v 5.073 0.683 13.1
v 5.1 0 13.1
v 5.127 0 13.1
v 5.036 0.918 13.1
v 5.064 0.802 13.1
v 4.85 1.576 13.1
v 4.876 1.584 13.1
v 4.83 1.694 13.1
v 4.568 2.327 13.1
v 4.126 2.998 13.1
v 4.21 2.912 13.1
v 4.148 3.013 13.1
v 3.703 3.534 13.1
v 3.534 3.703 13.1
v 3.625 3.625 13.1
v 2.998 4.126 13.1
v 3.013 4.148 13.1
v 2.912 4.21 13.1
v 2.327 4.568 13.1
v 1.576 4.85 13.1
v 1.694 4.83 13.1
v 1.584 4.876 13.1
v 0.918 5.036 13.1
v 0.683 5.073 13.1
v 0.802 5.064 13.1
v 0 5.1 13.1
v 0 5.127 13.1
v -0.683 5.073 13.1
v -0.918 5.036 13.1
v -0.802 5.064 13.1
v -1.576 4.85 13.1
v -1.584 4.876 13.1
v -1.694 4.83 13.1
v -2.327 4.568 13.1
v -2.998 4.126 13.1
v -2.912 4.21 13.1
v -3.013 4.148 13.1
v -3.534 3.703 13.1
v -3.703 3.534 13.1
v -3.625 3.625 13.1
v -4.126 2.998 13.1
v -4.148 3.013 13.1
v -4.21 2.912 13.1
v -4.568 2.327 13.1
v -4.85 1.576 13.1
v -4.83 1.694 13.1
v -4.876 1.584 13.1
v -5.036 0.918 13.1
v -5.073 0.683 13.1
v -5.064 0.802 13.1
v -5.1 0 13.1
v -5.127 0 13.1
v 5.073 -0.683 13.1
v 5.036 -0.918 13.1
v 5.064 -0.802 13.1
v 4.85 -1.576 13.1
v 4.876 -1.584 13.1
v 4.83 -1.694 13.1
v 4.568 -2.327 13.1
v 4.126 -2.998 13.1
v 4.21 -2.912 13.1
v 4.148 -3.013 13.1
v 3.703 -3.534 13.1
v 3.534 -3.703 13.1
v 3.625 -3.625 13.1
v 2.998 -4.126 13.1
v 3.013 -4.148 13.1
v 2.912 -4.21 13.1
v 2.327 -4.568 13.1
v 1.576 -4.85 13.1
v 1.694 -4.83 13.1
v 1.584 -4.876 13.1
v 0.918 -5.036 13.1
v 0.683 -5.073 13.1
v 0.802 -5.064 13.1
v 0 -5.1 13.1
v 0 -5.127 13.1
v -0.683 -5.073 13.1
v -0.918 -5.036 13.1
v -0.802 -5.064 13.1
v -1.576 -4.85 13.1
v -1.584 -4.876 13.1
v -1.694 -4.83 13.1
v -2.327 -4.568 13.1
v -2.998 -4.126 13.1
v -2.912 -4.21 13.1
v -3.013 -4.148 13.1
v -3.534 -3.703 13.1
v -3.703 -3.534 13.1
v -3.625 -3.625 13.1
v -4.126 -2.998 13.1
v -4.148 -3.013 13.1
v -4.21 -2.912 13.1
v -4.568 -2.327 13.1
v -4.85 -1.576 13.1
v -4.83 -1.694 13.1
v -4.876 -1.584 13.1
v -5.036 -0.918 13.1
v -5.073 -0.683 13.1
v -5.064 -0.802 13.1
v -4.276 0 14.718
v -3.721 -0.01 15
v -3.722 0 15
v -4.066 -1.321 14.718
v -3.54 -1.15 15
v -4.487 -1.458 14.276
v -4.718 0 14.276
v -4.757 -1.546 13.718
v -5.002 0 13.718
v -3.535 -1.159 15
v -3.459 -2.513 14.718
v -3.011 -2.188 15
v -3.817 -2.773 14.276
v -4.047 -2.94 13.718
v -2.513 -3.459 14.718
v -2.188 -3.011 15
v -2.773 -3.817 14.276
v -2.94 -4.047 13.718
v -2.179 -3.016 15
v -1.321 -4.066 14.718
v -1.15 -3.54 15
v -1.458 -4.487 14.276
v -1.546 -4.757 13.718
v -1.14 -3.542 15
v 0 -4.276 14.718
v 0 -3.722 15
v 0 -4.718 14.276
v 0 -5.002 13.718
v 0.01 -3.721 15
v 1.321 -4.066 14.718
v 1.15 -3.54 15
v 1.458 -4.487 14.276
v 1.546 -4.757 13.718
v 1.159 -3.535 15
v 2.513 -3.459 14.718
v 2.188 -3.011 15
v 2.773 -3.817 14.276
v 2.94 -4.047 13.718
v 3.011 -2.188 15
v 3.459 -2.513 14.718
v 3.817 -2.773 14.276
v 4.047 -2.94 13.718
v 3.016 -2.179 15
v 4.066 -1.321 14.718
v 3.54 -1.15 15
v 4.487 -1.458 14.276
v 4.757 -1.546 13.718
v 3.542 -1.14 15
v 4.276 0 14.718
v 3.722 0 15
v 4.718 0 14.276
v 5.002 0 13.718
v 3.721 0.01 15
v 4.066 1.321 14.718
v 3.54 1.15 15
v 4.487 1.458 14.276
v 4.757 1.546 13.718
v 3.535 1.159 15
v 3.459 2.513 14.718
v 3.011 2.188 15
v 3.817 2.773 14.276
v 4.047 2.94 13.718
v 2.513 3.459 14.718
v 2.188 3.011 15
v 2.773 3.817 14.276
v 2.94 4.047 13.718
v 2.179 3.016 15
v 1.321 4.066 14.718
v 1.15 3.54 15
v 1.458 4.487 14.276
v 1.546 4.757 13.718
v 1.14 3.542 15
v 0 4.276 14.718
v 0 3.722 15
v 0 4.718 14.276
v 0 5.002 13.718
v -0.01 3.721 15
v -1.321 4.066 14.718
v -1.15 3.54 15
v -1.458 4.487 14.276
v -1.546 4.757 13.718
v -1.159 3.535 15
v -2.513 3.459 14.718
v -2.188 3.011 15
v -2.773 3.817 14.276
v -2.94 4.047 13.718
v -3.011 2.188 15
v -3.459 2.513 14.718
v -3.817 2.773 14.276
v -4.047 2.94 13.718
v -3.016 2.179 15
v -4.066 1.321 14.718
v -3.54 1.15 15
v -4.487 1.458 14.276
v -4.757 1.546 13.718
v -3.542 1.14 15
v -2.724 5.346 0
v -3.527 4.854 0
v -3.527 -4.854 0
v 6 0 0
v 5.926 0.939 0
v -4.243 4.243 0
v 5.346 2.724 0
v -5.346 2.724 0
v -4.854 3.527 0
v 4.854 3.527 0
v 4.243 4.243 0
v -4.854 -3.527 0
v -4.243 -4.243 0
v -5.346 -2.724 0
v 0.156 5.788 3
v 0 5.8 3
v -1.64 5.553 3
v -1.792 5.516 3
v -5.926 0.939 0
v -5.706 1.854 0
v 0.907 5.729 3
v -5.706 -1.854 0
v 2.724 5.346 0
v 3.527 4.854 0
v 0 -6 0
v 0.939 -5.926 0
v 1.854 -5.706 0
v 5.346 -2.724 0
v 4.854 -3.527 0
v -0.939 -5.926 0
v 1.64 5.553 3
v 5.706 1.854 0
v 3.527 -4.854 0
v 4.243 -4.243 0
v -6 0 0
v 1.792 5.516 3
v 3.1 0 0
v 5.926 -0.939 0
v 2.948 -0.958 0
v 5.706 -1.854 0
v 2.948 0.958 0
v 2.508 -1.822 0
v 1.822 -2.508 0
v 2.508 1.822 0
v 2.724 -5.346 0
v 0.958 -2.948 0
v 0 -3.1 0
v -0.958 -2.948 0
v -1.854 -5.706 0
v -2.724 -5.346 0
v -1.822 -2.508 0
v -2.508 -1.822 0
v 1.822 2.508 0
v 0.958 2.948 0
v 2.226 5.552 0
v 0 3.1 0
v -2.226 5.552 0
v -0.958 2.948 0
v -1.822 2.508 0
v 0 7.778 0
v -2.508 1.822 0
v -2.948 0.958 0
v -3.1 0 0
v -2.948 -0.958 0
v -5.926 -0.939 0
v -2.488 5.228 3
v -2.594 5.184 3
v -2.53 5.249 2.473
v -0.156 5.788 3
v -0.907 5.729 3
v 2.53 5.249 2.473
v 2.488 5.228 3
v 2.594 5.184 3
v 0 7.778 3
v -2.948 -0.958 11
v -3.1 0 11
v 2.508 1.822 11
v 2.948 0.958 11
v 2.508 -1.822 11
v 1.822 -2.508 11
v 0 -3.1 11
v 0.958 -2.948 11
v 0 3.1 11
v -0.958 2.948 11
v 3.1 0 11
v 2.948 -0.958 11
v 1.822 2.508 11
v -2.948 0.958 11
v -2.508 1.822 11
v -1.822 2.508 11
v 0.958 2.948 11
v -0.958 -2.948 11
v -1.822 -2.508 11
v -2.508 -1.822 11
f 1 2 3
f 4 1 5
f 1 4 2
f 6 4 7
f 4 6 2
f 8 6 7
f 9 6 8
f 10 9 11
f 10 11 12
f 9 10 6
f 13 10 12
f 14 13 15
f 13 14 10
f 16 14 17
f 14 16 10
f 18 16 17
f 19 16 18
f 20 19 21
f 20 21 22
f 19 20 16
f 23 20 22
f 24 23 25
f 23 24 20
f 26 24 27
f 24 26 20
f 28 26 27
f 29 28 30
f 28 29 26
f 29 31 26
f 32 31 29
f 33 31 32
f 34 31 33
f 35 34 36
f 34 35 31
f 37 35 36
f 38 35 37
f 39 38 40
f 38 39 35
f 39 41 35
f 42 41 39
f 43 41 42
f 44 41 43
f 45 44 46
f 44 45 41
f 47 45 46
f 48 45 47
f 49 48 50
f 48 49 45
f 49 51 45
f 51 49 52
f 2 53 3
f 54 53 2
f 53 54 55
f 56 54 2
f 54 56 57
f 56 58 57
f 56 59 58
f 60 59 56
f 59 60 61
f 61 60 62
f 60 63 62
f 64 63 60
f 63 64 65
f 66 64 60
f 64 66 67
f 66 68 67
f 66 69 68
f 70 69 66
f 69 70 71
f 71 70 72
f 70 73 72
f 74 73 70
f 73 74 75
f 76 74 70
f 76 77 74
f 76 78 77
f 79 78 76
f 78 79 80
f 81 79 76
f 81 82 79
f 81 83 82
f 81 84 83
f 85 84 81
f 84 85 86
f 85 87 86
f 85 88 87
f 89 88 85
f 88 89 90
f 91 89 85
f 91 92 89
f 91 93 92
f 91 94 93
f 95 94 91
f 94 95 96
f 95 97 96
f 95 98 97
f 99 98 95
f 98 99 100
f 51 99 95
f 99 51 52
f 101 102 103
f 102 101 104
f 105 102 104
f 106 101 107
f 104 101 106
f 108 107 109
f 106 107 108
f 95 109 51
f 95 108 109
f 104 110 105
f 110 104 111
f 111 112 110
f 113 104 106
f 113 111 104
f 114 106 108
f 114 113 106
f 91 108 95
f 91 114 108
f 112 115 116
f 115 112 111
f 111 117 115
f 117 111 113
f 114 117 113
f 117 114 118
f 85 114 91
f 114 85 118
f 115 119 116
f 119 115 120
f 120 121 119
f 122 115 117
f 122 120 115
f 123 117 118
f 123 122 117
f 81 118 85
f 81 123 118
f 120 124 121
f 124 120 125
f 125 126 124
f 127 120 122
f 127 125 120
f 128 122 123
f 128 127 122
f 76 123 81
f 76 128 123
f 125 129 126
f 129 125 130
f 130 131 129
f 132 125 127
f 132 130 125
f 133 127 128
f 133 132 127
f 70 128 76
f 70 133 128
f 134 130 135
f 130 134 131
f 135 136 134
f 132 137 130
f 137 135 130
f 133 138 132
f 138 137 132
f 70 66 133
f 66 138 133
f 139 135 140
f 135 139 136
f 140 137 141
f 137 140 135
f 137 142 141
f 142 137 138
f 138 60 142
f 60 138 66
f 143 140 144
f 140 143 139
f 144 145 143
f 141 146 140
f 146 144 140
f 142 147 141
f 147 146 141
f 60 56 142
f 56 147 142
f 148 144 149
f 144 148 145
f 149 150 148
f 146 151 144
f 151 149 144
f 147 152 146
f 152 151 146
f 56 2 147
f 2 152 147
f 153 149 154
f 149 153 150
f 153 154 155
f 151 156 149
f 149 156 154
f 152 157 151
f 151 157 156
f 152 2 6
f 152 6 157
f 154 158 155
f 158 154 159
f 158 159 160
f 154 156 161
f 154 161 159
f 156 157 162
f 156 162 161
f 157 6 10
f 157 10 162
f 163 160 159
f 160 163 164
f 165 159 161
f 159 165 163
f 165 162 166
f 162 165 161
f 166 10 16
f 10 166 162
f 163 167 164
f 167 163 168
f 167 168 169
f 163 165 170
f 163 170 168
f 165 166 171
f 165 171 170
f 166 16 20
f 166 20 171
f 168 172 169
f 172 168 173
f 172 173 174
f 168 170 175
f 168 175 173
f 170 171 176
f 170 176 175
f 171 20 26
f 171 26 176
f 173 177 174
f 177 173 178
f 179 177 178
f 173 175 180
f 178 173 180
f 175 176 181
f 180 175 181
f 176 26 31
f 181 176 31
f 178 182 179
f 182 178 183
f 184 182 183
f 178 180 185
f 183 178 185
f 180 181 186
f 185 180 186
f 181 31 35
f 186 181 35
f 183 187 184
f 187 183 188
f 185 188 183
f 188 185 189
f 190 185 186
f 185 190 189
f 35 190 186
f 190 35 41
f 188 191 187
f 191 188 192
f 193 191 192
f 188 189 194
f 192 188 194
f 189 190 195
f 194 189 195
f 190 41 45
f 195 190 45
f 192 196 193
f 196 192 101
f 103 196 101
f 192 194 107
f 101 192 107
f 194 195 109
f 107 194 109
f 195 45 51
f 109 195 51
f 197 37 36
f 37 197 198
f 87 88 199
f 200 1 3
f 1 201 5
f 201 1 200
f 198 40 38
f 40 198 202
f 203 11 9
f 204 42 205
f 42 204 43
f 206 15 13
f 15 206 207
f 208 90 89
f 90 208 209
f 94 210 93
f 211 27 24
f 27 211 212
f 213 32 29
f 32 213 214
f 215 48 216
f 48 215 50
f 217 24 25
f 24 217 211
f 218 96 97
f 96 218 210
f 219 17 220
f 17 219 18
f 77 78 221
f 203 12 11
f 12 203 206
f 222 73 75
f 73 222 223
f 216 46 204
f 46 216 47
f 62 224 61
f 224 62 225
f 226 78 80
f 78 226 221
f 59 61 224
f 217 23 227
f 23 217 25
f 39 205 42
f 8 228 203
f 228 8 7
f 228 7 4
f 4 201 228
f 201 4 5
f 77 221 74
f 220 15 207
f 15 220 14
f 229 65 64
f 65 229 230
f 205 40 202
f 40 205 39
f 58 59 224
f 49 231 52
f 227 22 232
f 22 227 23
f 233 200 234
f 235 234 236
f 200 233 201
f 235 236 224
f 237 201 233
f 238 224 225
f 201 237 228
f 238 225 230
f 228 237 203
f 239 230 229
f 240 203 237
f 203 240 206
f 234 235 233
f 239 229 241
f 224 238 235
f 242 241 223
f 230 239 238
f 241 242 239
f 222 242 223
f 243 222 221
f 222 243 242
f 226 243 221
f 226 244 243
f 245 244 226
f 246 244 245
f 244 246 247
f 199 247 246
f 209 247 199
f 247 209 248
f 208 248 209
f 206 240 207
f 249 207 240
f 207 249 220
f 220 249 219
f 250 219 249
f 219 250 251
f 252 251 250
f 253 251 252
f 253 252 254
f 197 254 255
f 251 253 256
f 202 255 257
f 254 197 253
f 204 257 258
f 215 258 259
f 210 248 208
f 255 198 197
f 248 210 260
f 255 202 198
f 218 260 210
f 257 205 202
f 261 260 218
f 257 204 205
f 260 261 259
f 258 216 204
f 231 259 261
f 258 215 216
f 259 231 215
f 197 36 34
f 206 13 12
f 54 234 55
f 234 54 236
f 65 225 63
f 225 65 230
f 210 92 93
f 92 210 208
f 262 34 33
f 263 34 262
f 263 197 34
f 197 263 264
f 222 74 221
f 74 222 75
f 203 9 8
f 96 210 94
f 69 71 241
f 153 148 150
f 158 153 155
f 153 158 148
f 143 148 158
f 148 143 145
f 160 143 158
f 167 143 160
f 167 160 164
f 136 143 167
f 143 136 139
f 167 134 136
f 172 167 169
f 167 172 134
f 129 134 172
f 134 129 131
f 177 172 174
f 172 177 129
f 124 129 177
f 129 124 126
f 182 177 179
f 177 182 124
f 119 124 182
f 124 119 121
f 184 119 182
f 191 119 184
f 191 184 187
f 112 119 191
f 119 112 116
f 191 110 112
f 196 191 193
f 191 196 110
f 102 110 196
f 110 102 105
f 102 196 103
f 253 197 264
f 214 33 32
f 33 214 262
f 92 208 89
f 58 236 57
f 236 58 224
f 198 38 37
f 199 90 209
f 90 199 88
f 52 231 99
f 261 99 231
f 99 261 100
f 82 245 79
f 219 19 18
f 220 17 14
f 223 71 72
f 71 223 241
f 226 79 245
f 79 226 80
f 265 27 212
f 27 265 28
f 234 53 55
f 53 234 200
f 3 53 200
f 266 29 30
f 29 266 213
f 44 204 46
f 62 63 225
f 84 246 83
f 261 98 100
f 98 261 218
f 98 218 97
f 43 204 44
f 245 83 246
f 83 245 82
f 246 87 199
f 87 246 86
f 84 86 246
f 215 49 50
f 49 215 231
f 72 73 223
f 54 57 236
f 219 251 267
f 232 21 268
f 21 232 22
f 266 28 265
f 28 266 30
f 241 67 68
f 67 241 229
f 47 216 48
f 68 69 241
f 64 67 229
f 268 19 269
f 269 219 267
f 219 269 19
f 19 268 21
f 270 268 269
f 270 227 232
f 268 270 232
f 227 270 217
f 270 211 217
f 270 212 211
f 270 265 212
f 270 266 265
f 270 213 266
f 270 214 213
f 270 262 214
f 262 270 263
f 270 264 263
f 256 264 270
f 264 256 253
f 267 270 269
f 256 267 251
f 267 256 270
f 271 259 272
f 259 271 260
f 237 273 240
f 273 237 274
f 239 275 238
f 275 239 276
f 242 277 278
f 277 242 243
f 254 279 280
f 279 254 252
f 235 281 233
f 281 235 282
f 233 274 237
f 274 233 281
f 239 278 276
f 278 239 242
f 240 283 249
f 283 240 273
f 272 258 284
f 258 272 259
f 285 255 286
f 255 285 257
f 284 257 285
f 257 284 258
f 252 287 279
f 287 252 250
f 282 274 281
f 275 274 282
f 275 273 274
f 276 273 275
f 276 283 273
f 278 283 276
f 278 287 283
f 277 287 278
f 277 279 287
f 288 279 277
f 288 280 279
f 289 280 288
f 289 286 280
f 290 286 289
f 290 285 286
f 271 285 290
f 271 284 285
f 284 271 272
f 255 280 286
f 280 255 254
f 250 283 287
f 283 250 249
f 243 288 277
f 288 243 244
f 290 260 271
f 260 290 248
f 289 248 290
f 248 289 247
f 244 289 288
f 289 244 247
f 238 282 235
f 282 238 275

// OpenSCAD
/*

Parametric Potentiometer Knob Generator
version 1.1
2012 Steve Cooley
http://sc-fa.com
http://beatseqr.com
http://hapticsynapses.com

parametric potentiometer knob generator by steve cooley is licensed under a Creative Commons Attribution-NonCommercial-ShareAlike 3.0 Unported License. Based on a work at sc-fa.com. Permissions beyond the scope of this license may be available at http://sc-fa.com/blog/contact.

view terms of the license here:
http://creativecommons.org/licenses/by-nc-sa/3.0/


version history
---------------
1.1 2012-04-12 fixed the arrow indicator code to be more robust and easier to adjust parameters for.
1.0 2012-03-?? initial release.


*/


//
//
// Physical attributes, basic
//
//

knob_radius_top = 5;
knob_radius_bottom = 6;
knob_height = 15;
knob_smoothness = 40;

shaft_radius = 3.1;
shaft_height = 12;
shaft_smoothness = 20;

shaft_is_flatted = false;
flat_size_adjustment = -0.0;
// you won't need to mess with this. less than 5 makes it disappear. you can, however,
// set the adjustment to be a negative decimal if you need a flat but not as big as the default.
// go positive if you need a bigger flat
flat_size = 5 + flat_size_adjustment;

// some potentiometers need to have their knobs affixed with a set screw.
set_screw = false;
set_screw_radius = 1.5;
set_screw_depth = 9;
set_screw_height = 4;
quality_of_set_screw = 20;

//
//
// Decorations
//
//

//
// top edge smoothing
// thanks to http://www.iheartrobotics.com/ for the articles!
//

smoothing = true;
smoothing_radius = 2;				// tweak on this one, how much smoothing to apply
smooth = 20;						// tweak on this one, Number of facets of rounding cylinder

ct = -0.1; 							// circle translate? not sure.
circle_radius = knob_radius_top;  	// just match the top edge radius
circle_height = 1; 					// actually.. I don't know what this does.
pad = 0.2;							// Padding to maintain manifold


//
// directional indicators
//

// this is a corner edge of a cube sticking out of the cylinder at the bottom
// you can use it instead of the arrow shaped cutout in the top if you like. Or both.

pointy_external_indicator = true;
pointy_external_indicator_height = 3;
pointy_external_indicator_pokey_outey_ness = 0.7; //
pokey_outey_value = pointy_external_indicator_pokey_outey_ness - 1 - pad;
pokey_outey = [pokey_outey_value, pokey_outey_value,0];

// there's an arrow shaped hole you can have. There aren't a lot of controls for this.
// please feel free to improve on this script here.

arrow_indicator = false;
arrow_indicator_scale = 0.4;
arrow_indicator_translate = [0,1,16];
arrow_scale_head = 2;
arrow_scale_shaft = 1.5;

//
// indentations
//

// for spherical indentations, set the quantity, quality, size, and adjust the placement
indentations_sphere = false;
sphere_number_of_indentations = 12;
sphere_quality_of_indentations = 4;
size_of_sphere_indentations = 4;
// the first number in this set moves the spheres in or out. smaller is closer to the middle
// the second number in this set moves the spheres left or right
// the third number in this set moves the speheres up or down
translation_of_sphere_indentations = [10,0,15];
// in case you are using an odd number of indentations, you way want to adjust the starting angle
// so that they align to the front or set screw locations.
sphere_starting_rotation = 90;

// for cylinder indentations, set quantity, quality, radius, height, and placement
indentations_cylinder = false;
cylinder_number_of_indentations = 10;
cylinder_quality_of_indentations = 50;
radius_of_cylinder_indentations_top = 3;
radius_of_cylinder_indentations_bottom = 5;
height_of_cylinder_indentations = 12;
translation_of_cylinder_indentations = [0,8,-8];
cylinder_starting_rotation = -33.3;

// these are some setup variables... you probably won't need to mess with them.
negative_knob_radius = knob_radius_bottom*-1;


// this is the main module. It calls the submodules.
make_the_knob();

module make_the_knob()
{
	difference()
		{
		difference()
			{

			difference()
				{
				difference()
					{

					union()
						{

						difference()
							{
							// main cylinder
							cylinder(r1=knob_radius_bottom,r2=knob_radius_top,h=knob_height, $fn=knob_smoothness);

							smoothing();

							}

						external_direction_indicator();
						}

					shaft_hole();
					}

				set_screw_hole();
				}

			arrow_indicator();
			indentations();
		}
	}

}

module smoothing() {

// smoothing the top
				if(smoothing == true)
					{
						translate([0,0,knob_height])
						rotate([180,0,0])
						difference() {
							rotate_extrude(convexity=10,  $fn = smooth)
							translate([circle_radius-ct-smoothing_radius+pad,ct-pad,0])
							square(smoothing_radius+pad,smoothing_radius+pad);

							rotate_extrude(convexity=10,  $fn = smooth)
							translate([circle_radius-ct-smoothing_radius,ct+smoothing_radius,0])
							circle(r=smoothing_radius,$fn=smooth);
							}
					}
}

module external_direction_indicator() {

				if(pointy_external_indicator == true)
						{


						// outer pointy indicator
						rotate([0,0,45])
						translate(pokey_outey)
						// cube size of 8 minimum to point out
						cube(size=[knob_radius_bottom,knob_radius_bottom,pointy_external_indicator_height],center=false);
						}

}

module shaft_hole() {
				// shaft hole
				difference()
					{

					// round shaft hole
					translate([ 0, 0, -1 ])
					cylinder(r=shaft_radius,h=shaft_height, $fn=shaft_smoothness);

					if(shaft_is_flatted == true)
						{
						// D shaft shape for shaft cutout
						rotate( [0,0,90])
						translate([-7.5,-5,0])
						cube(size=[flat_size,10,13],center=false);
						}
					}
}


module set_screw_hole() {

			if(set_screw == true)
				{
				// set screw hole
				rotate ([90,0,0])
				translate([ 0, set_screw_height, 1 ])
				cylinder(r=set_screw_radius,h=set_screw_depth, $fn=quality_of_set_screw);
				}
}

module arrow_indicator() {
		if(arrow_indicator == true)
			{
			translate(arrow_indicator_translate)
			// begin arrow top cutout
			// translate([(knob_radius/2),knob_height,knob_height])
			rotate([90,0,45])
			scale([arrow_indicator_scale*.3,arrow_indicator_scale*.3,arrow_indicator_scale*.3])
			union()
				{
				rotate([90,45,0])
				scale([arrow_scale_head,arrow_scale_head,1])
				cylinder(r=8, h=10, $fn=3, center=true);
				rotate([90,45,0])
				translate([-10,0,0])
				scale([arrow_scale_shaft,arrow_scale_shaft,1])
				cube(size=[15,10,10],center=true);
				}
			}
}

module indentations() {

if(indentations_sphere == true)
			{
			for (z = [0:sphere_number_of_indentations])
				{
				rotate([0,0,sphere_starting_rotation+((360/sphere_number_of_indentations)*z)])
				translate(translation_of_sphere_indentations)
				sphere(size_of_sphere_indentations, $fn=sphere_quality_of_indentations);
				}
			}
if(indentations_cylinder == true)
			{
			for (z = [0:cylinder_number_of_indentations])
				{
				rotate([0,0,cylinder_starting_rotation+((360/cylinder_number_of_indentations)*z)])

				translate([negative_knob_radius,0,knob_height])
				translate(translation_of_cylinder_indentations)
				cylinder(r1=radius_of_cylinder_indentations_bottom, r2=radius_of_cylinder_indentations_top, h=height_of_cylinder_indentations, center=true, $fn=cylinder_quality_of_indentations);
				}
			}
		}
